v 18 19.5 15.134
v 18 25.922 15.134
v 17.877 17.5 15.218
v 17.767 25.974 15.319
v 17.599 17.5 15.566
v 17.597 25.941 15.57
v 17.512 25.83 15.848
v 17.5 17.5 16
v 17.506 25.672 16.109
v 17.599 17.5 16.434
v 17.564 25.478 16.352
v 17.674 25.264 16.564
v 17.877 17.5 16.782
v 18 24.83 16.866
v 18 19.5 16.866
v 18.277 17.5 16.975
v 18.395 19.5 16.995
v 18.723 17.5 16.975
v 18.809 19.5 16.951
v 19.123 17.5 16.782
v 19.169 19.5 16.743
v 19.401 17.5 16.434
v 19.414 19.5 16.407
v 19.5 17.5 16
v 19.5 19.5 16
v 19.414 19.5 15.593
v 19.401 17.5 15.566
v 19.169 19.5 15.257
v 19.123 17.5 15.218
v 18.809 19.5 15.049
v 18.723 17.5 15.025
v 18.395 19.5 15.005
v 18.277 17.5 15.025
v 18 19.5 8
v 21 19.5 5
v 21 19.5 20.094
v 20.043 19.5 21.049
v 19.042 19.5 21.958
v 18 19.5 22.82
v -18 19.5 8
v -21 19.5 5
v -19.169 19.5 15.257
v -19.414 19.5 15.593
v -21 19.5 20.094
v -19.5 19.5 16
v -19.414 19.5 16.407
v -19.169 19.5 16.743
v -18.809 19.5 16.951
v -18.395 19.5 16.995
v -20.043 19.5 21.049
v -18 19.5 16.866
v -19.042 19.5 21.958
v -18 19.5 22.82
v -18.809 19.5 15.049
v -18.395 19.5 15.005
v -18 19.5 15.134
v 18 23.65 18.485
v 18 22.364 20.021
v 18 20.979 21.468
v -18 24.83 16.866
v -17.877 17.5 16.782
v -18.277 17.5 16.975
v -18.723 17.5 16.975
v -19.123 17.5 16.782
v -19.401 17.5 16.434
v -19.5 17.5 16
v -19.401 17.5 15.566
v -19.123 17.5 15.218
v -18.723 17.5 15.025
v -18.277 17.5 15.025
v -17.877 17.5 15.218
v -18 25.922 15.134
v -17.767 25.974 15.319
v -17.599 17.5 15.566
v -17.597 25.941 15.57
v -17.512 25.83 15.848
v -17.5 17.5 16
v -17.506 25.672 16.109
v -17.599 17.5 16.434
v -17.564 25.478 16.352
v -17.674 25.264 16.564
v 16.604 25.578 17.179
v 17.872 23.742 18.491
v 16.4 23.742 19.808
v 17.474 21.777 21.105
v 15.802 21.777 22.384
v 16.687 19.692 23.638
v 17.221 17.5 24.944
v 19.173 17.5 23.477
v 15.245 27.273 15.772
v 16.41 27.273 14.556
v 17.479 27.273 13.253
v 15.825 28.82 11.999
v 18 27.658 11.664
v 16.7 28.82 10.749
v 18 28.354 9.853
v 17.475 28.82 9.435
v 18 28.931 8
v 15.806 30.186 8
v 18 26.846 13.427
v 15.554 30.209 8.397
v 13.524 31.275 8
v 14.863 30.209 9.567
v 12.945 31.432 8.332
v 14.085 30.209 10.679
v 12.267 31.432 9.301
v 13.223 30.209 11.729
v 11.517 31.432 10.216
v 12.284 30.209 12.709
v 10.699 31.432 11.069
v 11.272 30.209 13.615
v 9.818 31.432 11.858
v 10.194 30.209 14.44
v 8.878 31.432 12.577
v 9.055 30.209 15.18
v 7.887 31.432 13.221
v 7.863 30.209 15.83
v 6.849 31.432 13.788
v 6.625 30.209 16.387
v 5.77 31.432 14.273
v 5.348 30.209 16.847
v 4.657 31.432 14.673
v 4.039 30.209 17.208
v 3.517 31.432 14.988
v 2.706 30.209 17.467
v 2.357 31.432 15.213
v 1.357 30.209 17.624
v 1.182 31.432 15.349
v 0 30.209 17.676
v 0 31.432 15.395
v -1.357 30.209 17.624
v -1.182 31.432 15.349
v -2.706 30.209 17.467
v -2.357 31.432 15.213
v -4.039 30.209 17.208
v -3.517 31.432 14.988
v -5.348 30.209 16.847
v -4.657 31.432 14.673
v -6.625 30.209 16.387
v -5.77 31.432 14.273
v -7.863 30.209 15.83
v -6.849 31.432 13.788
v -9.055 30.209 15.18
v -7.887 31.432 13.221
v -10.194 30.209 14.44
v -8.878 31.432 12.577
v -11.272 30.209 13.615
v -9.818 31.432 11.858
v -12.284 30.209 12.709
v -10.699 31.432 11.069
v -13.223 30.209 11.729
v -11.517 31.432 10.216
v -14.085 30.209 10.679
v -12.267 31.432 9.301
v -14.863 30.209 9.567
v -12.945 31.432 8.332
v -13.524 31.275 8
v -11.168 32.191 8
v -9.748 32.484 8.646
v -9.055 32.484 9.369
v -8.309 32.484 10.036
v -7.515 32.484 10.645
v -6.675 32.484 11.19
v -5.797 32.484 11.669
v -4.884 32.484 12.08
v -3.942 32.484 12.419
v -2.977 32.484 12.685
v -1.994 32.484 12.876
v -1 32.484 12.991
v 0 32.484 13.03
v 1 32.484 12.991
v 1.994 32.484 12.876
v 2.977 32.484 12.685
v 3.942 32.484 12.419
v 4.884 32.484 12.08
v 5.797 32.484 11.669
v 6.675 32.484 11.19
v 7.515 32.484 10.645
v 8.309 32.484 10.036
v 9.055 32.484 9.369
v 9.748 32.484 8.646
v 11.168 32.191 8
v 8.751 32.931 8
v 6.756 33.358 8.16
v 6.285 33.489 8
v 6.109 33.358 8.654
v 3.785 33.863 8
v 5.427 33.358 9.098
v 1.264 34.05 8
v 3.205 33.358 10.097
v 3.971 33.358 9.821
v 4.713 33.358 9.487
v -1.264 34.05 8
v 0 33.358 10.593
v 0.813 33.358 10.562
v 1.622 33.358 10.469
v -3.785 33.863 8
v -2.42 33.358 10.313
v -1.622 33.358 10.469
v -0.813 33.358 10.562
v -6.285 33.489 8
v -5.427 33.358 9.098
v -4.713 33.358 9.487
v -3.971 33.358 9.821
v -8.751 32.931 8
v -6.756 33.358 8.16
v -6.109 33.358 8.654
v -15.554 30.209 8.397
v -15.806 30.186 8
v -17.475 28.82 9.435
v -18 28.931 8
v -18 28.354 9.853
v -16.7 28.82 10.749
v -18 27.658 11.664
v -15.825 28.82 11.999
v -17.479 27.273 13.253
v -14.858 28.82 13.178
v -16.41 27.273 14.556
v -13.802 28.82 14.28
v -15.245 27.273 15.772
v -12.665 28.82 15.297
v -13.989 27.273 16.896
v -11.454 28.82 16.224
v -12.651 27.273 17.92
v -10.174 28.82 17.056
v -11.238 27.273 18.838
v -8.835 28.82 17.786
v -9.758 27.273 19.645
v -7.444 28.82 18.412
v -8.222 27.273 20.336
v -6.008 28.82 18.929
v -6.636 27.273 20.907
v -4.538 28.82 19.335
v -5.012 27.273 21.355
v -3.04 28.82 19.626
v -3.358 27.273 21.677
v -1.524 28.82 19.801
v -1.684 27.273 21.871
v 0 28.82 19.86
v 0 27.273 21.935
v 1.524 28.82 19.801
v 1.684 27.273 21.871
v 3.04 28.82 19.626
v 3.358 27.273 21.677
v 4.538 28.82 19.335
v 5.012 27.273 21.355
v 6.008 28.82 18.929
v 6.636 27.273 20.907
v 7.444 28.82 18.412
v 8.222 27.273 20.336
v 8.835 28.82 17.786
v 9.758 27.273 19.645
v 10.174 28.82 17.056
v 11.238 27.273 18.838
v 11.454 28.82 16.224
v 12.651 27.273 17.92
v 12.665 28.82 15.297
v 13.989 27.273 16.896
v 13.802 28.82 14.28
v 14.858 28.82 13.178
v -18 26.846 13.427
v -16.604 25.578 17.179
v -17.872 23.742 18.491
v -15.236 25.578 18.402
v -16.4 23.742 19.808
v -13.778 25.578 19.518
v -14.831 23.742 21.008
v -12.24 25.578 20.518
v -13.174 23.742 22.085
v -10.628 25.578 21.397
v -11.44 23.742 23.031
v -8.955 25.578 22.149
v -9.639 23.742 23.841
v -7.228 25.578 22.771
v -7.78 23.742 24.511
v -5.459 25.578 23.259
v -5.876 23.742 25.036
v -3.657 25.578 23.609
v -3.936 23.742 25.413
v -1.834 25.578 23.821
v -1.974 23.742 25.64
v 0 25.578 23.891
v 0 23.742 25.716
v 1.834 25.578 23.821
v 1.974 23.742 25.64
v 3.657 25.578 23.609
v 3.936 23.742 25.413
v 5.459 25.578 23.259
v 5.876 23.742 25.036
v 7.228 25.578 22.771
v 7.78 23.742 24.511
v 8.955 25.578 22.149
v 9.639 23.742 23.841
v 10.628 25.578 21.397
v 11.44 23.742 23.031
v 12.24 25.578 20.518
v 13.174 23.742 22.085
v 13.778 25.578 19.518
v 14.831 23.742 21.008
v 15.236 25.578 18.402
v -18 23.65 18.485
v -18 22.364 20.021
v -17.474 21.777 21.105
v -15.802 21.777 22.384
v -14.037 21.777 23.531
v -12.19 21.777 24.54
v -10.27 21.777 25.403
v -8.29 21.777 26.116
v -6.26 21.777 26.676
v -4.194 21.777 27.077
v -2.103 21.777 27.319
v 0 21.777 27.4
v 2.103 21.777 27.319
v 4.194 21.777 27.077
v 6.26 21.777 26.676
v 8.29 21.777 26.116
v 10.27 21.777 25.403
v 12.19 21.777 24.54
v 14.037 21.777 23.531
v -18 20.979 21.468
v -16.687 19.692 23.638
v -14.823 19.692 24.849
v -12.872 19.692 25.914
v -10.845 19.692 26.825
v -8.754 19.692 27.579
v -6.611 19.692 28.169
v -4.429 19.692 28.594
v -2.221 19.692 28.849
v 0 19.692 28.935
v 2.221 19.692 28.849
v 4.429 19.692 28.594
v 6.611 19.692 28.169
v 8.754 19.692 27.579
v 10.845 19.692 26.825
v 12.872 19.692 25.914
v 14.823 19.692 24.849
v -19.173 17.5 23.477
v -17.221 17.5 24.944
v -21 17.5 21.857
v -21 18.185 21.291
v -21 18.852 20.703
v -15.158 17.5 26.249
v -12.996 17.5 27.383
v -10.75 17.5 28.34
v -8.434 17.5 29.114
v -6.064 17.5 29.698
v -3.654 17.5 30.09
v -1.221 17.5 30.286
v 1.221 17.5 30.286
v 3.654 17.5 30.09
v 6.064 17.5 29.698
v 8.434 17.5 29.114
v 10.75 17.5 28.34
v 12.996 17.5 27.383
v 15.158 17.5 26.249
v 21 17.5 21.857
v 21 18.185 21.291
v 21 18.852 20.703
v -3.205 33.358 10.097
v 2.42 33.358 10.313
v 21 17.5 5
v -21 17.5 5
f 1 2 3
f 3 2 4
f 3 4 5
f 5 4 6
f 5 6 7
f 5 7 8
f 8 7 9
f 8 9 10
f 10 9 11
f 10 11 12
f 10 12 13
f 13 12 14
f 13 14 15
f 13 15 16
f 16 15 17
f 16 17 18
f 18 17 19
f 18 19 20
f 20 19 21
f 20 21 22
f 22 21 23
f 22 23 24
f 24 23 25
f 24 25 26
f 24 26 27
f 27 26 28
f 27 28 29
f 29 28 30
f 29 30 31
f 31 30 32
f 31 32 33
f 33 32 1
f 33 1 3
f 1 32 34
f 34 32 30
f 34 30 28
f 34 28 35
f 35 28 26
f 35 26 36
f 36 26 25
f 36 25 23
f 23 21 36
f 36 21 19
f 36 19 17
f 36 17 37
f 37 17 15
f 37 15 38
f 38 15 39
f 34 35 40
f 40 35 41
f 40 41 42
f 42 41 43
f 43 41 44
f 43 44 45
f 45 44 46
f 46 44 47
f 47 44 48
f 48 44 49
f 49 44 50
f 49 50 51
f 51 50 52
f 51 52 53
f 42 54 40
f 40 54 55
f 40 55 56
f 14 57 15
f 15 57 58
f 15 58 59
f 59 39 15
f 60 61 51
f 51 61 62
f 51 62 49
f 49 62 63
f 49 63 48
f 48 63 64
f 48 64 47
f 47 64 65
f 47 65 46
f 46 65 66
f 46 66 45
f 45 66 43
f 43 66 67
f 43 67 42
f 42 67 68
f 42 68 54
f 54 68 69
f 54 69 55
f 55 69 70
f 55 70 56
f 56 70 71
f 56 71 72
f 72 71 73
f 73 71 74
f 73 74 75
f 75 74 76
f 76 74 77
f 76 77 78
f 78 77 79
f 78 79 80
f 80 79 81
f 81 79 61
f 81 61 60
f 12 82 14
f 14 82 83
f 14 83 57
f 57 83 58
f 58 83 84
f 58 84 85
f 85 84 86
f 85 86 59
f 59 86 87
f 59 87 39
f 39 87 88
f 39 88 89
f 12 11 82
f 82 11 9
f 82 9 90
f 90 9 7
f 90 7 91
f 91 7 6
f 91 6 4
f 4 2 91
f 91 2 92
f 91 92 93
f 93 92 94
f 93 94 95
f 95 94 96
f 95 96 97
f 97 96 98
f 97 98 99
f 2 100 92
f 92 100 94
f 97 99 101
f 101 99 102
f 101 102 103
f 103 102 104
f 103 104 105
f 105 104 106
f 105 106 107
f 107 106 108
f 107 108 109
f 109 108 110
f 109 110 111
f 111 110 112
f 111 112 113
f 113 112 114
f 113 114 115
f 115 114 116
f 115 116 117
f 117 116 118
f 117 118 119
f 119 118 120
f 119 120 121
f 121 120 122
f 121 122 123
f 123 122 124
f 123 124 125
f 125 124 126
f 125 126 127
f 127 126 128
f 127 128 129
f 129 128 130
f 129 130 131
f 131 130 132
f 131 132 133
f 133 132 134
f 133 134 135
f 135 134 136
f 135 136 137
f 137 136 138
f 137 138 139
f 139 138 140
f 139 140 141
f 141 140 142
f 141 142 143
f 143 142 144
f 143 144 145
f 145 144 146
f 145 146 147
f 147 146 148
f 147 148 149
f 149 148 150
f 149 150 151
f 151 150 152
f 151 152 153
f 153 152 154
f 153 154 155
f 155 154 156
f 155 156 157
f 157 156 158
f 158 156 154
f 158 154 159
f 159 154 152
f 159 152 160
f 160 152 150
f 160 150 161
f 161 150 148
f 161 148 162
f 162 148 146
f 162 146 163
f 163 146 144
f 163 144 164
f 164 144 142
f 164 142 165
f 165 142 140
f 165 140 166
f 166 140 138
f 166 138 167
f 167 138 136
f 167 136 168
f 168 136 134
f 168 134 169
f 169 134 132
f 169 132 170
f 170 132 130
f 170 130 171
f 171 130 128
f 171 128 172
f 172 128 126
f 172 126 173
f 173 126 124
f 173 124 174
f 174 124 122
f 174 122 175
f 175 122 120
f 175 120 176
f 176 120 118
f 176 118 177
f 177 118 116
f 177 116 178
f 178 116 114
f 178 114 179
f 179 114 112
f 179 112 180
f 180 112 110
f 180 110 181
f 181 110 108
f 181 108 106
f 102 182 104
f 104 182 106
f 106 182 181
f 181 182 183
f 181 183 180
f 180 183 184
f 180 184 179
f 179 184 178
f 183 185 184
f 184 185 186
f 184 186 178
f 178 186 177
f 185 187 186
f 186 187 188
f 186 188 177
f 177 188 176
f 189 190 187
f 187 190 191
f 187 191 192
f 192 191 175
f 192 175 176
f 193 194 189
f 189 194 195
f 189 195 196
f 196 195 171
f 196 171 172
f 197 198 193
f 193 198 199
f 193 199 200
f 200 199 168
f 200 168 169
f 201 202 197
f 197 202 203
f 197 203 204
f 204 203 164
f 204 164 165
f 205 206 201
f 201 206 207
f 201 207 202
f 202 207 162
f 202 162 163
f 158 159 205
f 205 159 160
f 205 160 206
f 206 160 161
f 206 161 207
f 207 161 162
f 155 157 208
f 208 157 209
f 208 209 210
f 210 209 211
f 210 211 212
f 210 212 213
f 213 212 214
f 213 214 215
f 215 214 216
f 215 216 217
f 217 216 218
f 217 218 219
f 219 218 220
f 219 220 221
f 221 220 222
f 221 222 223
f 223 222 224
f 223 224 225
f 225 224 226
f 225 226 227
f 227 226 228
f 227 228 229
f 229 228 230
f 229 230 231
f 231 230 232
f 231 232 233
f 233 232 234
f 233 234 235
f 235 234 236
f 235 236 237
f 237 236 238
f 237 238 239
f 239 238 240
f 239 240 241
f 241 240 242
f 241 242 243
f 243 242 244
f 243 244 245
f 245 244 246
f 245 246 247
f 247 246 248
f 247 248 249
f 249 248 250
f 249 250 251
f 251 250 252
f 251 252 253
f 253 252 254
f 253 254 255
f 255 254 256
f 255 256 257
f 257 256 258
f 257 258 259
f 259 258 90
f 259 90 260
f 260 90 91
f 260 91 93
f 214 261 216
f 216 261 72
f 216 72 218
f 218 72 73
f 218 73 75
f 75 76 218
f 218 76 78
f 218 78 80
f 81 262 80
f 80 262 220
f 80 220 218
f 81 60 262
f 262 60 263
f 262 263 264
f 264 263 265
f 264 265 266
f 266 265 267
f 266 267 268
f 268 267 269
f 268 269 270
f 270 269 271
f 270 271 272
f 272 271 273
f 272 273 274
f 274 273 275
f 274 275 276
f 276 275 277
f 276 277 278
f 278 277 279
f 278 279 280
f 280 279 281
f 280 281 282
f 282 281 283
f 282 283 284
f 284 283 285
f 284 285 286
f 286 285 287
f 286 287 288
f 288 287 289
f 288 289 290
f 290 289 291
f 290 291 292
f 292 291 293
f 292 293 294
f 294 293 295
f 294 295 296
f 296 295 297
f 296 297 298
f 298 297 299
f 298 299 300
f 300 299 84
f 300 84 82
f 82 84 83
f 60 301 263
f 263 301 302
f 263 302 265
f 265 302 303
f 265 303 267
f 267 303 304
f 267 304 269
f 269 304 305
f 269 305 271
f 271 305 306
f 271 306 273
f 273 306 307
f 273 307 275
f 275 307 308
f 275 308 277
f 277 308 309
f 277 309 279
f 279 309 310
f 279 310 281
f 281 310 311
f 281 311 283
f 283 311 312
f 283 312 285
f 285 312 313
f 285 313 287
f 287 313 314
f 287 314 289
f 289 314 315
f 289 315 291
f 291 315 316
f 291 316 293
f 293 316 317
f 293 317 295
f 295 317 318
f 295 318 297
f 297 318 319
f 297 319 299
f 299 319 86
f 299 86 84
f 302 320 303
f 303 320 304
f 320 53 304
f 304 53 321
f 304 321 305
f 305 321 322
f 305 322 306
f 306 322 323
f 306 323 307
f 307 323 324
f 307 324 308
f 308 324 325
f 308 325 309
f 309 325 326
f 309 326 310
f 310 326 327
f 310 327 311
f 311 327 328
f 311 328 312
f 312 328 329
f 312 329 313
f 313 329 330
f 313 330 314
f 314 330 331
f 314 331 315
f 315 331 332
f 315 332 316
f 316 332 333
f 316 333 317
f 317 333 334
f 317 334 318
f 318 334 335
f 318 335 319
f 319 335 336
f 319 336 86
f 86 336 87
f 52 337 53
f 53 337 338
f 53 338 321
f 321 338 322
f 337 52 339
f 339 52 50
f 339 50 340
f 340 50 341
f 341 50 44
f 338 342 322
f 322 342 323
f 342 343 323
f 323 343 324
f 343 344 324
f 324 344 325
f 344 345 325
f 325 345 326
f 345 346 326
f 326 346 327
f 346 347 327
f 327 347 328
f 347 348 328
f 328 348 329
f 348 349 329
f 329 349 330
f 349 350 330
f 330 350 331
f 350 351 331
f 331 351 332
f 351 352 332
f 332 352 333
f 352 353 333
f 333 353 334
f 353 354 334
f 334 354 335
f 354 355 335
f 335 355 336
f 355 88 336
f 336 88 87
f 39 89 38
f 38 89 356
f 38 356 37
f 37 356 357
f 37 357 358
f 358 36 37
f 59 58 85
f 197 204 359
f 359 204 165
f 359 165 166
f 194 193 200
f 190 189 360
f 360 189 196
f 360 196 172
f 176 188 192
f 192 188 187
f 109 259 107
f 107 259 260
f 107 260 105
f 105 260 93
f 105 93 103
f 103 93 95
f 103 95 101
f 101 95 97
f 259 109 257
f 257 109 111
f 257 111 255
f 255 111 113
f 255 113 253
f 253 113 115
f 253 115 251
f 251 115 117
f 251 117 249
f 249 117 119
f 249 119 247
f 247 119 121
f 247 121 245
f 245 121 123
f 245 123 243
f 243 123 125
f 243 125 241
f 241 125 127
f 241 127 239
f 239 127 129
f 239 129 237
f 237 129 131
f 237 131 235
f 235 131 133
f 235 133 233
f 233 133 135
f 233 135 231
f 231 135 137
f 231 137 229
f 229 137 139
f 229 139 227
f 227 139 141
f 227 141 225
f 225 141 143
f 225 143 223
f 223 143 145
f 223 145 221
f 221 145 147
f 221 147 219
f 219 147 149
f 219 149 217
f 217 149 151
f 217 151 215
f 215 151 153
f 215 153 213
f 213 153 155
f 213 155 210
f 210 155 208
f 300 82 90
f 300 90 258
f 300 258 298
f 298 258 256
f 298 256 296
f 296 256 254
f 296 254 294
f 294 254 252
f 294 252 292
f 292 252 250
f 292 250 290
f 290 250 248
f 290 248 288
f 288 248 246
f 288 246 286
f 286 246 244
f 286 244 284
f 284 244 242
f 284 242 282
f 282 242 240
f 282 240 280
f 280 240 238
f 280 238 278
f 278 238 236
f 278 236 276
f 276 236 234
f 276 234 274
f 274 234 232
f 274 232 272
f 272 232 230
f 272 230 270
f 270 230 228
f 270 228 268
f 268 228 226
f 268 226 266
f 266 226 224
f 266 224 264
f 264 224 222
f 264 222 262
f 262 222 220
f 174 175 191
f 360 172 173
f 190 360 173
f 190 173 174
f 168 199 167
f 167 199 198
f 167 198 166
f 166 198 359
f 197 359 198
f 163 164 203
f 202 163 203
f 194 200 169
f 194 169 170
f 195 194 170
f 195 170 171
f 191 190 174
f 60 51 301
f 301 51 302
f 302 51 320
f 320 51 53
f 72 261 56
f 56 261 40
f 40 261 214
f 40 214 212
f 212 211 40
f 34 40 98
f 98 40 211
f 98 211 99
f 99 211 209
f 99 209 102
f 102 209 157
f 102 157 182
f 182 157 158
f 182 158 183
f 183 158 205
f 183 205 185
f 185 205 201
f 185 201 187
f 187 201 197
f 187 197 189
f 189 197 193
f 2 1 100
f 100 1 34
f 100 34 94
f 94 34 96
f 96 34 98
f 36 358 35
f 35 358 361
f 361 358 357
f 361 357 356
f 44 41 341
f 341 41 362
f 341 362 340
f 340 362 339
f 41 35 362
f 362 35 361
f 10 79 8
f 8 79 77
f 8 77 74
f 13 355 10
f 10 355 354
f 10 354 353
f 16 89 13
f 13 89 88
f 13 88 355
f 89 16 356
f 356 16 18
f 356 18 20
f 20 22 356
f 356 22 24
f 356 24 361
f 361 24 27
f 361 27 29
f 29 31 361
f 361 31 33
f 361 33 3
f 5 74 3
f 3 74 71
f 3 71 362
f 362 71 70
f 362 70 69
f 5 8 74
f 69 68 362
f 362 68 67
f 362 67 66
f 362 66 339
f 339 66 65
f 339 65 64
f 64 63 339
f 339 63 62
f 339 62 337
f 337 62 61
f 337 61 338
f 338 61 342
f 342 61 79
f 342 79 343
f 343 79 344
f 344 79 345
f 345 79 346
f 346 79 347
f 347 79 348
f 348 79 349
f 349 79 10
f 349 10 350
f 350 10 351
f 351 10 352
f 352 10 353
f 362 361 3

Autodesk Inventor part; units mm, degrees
ref_plane "YZ Plane" through (0, 0, 0) normal (1, 0, 0) x (0, 1, 0)
ref_plane "XZ Plane" through (0, 0, 0) normal (0, 1, 0) x (-1, 0, 0)
ref_plane "XY Plane" through (0, 0, 0) normal (0, 0, 1) x (1, 0, 0)
sketch "スケッチ1" plane through (0, 0, 0) normal (0, 1, 0) x (-1, 0, 0)
  circle A0 centre (0, 0) radius 35
  line L0 (0, 0) -> (0, -35)
  line L1 (0, 0) -> (0, 35)
  dimension "d0" = 70
revolve "回転1" add sketch "スケッチ1" angle 180 about axis through (0, 0, 0) along (0, 0, 1) picked at (-2.5961, -23.0408) contours L1 L0 A0
sketch "スケッチ5" plane through (0, 0, 0) normal (0, -1, 0) x (1, 0, 0)
  line L0 (-20, -22) -> (20, -22)
  line L1 (20, -22) -> (20, -13)
  line L2 (20, -13) -> (-20, -13)
  line L3 (-20, -13) -> (-20, -22)
  line L4 (-20, -15) -> (-20, -13)
  line L5 (0, 25) -> (-17, 25)
  line L6 (-17, 25) -> (-17, 23)
  line L7 (-17, 23) -> (0, 23)
  line L8 (0, 23) -> (0, 25)
  line L9 (0, 20) -> (-20, 20)
  line L10 (-20, 20) -> (-20, 19)
  line L11 (-20, 19) -> (0, 19)
  line L12 (0, 19) -> (0, 20)
  line L13 (0, 13) -> (-19, 13)
  line L14 (-19, 13) -> (-19, 11)
  line L15 (-19, 11) -> (0, 11)
  line L16 (0, 11) -> (0, 13)
  line L17 (0, 5) -> (-23, 5)
  line L18 (-23, 5) -> (-23, 3)
  line L19 (-23, 3) -> (0, 3)
  line L20 (0, 3) -> (0, 5)
  circle A0 centre (0, 0) radius 35 projected
  circle A1 centre (0, 0) radius 35 projected
  line L21 (0, 35) -> (0, -35)
  line L22 (35, 0) -> (-35, 0)
  line L23 (-32, 2) -> (-23, 2)
  line L24 (-23, 2) -> (-23, -8)
  line L25 (-23, -8) -> (-32, -8)
  line L26 (-32, -8) -> (-32, 2)
  line L27 (-23, -8.0262) -> (-23, 2)
  line L28 (-27, 22.2711) -> (-27, -22.2711)
  line L29 (-15.5, 25) -> (0, 25)
  line L30 (0, 25) -> (0, 35)
  line L31 (0, 35) -> (-15.5, 35)
  line L32 (-15.5, 35) -> (-15.5, 25)
  line L33 (-15.5, 23) -> (0, 23)
  line L34 (0, 23) -> (0, 20)
  line L35 (0, 20) -> (-15.5, 20)
  line L36 (-15.5, 20) -> (-15.5, 23)
  line L37 (-16, 13) -> (0, 13)
  line L38 (0, 13) -> (0, 19)
  line L39 (0, 19) -> (-16, 19)
  line L40 (-16, 19) -> (-16, 13)
  line L41 (-16, 11) -> (0, 11)
  line L42 (0, 11) -> (0, 5)
  line L43 (0, 5) -> (-16, 5)
  line L44 (-16, 5) -> (-16, 11)
  line L45 (-23, -3) -> (-39.6865, -3)
  line L46 (-23, -3) -> (-7.8337, -3)
  line L47 (-8, 3) -> (-23, 3)
  line L48 (-23, 3) -> (-23, -9)
  line L49 (-23, -9) -> (-8, -9)
  line L50 (-8, -9) -> (-8, 3)
  line L51 (-8, 3) -> (-23, -9) construction
  line L52 (-23, 3) -> (-8, -9) construction
  line L53 (-23, 4) -> (-33, 4)
  line L54 (-33, 4) -> (-33, -10)
  line L55 (-33, -10) -> (-23, -10)
  line L56 (-23, -10) -> (-23, 4)
  line L57 (-23, 4) -> (-33, -10) construction
  line L58 (-33, 4) -> (-23, -10) construction
  line L59 (-8, 3) -> (-1, 3)
  line L60 (-1, 3) -> (-1, -9)
  line L61 (-1, -9) -> (-8, -9)
  line L62 (-8, -9) -> (-8, 3)
  line L63 (-8, 3) -> (-1, -9) construction
  line L64 (-1, 3) -> (-8, -9) construction
  line L65 (-23, 2) -> (-27, 2)
  line L66 (-23, -8) -> (-27, -8)
  line L67 (-23, 4) -> (-27, 4)
  line L68 (-23, -10) -> (-27, -10)
  line L69 (23.4307, -26) -> (-23.4307, -26)
  line L70 (-8, 3) -> (-6.8, 3)
  line L71 (-6.8, 3) -> (-6.8, -9)
  line L72 (-6.8, -9) -> (-8, -9)
  line L73 (-8, -9) -> (-8, 3)
  line L74 (-3, 5) -> (0, 5)
  line L75 (0, 20) -> (-4, 20)
  line L76 (-4, 19) -> (0, 19)
  line L77 (0, 19) -> (0, 20)
  line L78 (-6, 5) -> (-1, 5)
  line L79 (-1, 3) -> (-6, 3)
  point P0 (0, -22)
  point P1 (0, -13)
  point P2 (0, 24)
  point P3 (0, 19.5)
  point P4 (0, 12)
  point P5 (0, 4)
  point P6 (-20, -17.5)
  point P7 (-27, -0.5262)
  point P8 (-27, -8)
  point P9 (-15.5, 21.5)
  point P10 (-15.5, 31.3807)
  point P11 (0, 25)
  point P12 (0, 23)
  point P13 (0, 11)
  point P14 (0, 13)
  point P15 (-27, 0)
  point P16 (-32, 0)
  point P17 (-23, 0)
  point P18 (-15.5, -3)
  point P19 (-28, -3)
  point P20 (-4.5, -3)
  point P21 (-8, -9)
  point P22 (-8, 3)
  point P23 (-27, 0.5)
  point P24 (-28, 0.4738)
  point P25 (-28, -11.5262)
  point P26 (-27, -11.5)
  point P27 (-23, 2)
  point P28 (-23, 2)
  point P29 (-8, 0)
  point P30 (-1, 0)
  point P31 (0, 19)
  point P32 (0, 20)
  point P33 (-27, -10)
  point P34 (-27, 4)
  dimension "d12" = 40
  dimension "d13" = 9
  dimension "d23" = 17
  dimension "d24" = 2
  dimension "d27" = 20
  dimension "d28" = 1
  dimension "d30" = 19
  dimension "d31" = 2
  dimension "d33" = 2
  dimension "d88" = 0
  dimension "d89" = 0
  dimension "d90" = 13
  dimension "d92" = 20
  dimension "d93" = 10
  dimension "d97" = 9
  dimension "d98" = 10
  dimension "d113" = 27
  dimension "d122" = 15.5
  dimension "d123" = 35
  dimension "d124" = 3
  dimension "d125" = 15.5
  dimension "d126" = 6
  dimension "d127" = 6
  dimension "d128" = 16
  dimension "d129" = 16
  dimension "d147" = 12
  dimension "d149" = 8
  dimension "d151" = 15
  dimension "d161" = 14
  dimension "d162" = 10
  dimension "d164" = 12
  dimension "d165" = 7
  dimension "d170" = 26
  dimension "d175" = 1.2
  dimension "d207" = 0
extrude "GNSボード" cut sketch "スケッチ5" against normal blind 16 contours L8 L7 L6 L5
extrude "GNSボード止めるよう" cut sketch "スケッチ5" against normal blind 15 contours L21 L5 L32 A0 | L21 L9 L36 L7
extrude "アルミ板１" cut sketch "スケッチ5" against normal blind 17.5 contours L11 L10 L9 L12
extrude "メイン基板" cut sketch "スケッチ5" against normal blind 17.5 contours L15 L14 L13 L16
extrude "メイン止めるよう" cut sketch "スケッチ5" against normal blind 16.5 contours L17 L44 L15 L21 | L13 L40 L11 L21
extrude "アルミ板２" cut sketch "スケッチ5" against normal blind 19.5 contours L19 L18 L17 L20
extrude "電池ボックス入れ" cut sketch "スケッチ5" against normal blind 15 contours L3 L2 L21 L0 | L21 L2 L1 L0
extrude "side ut" cut sketch "スケッチ5" against normal blind 100 contours A0 L45 L54 L55 L28 | A0 L22 L54 L45 | L55 L54 L45 L26 L25 L28 | A0 L28 L53 L54 L22 | L54 L22 L26 L45 | L25 L26 L45 L28 | L54 L53 L28 L23 L26 L22 | L26 L22 L28 L45 | L22 L26 L23 L28
extrude "motor case" add sketch "スケッチ5" against normal blind 7 contours L55 L54 L45 L26 L25 L28 | L28 L25 L27 L48 L56 L55 | L50 L46 L24 L22 | L22 L24 L48 L19 L50 | L54 L22 L26 L45 | L28 L45 L24 L25 | L25 L26 L45 L28 | L24 L45 L28 L22 | L22 L28 L23 L24 | L50 L49 L48 L27 L24 L46 | L54 L53 L28 L23 L26 L22 | L26 L22 L28 L45 | L53 L18 L48 L23 L28 | L22 L26 L23 L28
extrude "bottom cut" cut sketch "スケッチ5" against normal blind 90 contours L69 A0 L21 | L21 A0 L69
extrude "motor" cut sketch "スケッチ5" against normal blind 6 contours L60 L61 L71 L22 | L22 L71 L19 L60 | L71 L61 L50 L22 | L22 L50 L19 L71 | L50 L46 L24 L22 | L22 L24 L48 L19 L50 | L28 L45 L24 L25 | L25 L26 L45 L28 | L24 L45 L28 L22 | L22 L28 L23 L24 | L50 L49 L48 L27 L24 L46 | L26 L22 L28 L45 | L22 L26 L23 L28
extrude "motor block" add sketch "スケッチ5" against normal blind 10 contours L71 L61 L50 L22 | L22 L50 L19 L71
sketch "スケッチ27" plane through (-33, 0, -10) normal (-1, 0, 0) x (0, 0, 1)
  line L0 (14, 0) -> (0, 0) projected
  circle A0 centre (7, 0) radius 3
  point P0 (10, 0)
  dimension "d198" = 6
extrude "押し出し36" cut sketch "スケッチ27" against normal blind 27
mirror "ミラー13" about plane through (0, 0, 0) normal (1, 0, 0) of "メイン止めるよう", "メイン基板", "アルミ板１", "GNSボード止めるよう", "GNSボード", "アルミ板２", "motor", "motor case", "押し出し36", "電池ボックス入れ", "side ut"
ref_plane "作業平面5" through (-17, 17.5, 23) normal (0, -1, 0) x (1, 0, 0)
sketch "スケッチ29" plane through (-17, 17.5, 23) normal (0, -1, 0) x (1, 0, 0)
  line L0 (32.5, 2) -> (1.5, 2) projected
  line L1 (1.5, 0) -> (32.5, 0) projected
  line L2 (32.5, -3) -> (1.5, -3) projected
  line L3 (1, -4) -> (33, -4) projected
  line L4 (33, -10) -> (1, -10) projected
  line L5 (33, -10) -> (33, -4) projected
  line L6 (1, -4) -> (33, -4) projected
  line L7 (1, -10) -> (1, -4) projected
  line L8 (1, -12) -> (33, -12) projected
  line L9 (33, -18) -> (1, -18) projected
  line L10 (33, -18) -> (33, -12) projected
  line L11 (1, -12) -> (33, -12) projected
  line L12 (1, -18) -> (1, -12) projected
  line L13 (18, -20) -> (40, -20) projected
  line L14 (-6, -20) -> (17, -20) projected
  line L15 (17, -18) -> (-6, -18) projected
  line L16 (-16, -23) -> (-15, -23) projected
  line L17 (-15, -23) -> (-15, -21) projected
  line L18 (-15, -21) -> (-6, -21) projected
  line L19 (-6, -21) -> (-6, -18) projected
  line L20 (-6, -18) -> (1, -18) projected
  line L21 (1, -18) -> (1, -12) projected
  line L22 (1, -12) -> (-2, -12) projected
  line L23 (-2, -12) -> (-2, -10) projected
  line L24 (-2, -10) -> (1, -10) projected
  line L25 (1, -10) -> (1, -4) projected
  line L26 (1, -4) -> (-3, -4) projected
  line L27 (-3, -4) -> (-3, -3) projected
  line L28 (-3, -3) -> (1.5, -3) projected
  line L29 (1.5, -3) -> (1.5, 0) projected
  line L30 (1.5, 0) -> (0, 0) projected
  line L31 (0, 0) -> (0, 2) projected
  line L32 (0, 2) -> (1.5, 2) projected
  line L33 (1.5, 2) -> (1.5, 8.3807) projected
  arc A0 (1.5, 8.3807) -> (-10, -0.7289) centre (17, -23) ccw projected
  line L34 (-10, -0.7289) -> (-10, -19) projected
  line L35 (-10, -19) -> (-16, -19) projected
  line L36 (-16, -19) -> (-16, -23) projected
  line L37 (49, -23) -> (50, -23) projected
  line L38 (50, -19) -> (50, -23) projected
  line L39 (44, -19) -> (50, -19) projected
  line L40 (44, -19) -> (44, -0.7289) projected
  arc A1 (44, -0.7289) -> (32.5, 8.3807) centre (17, -23) ccw projected
  line L41 (32.5, 8.3807) -> (32.5, 2) projected
  line L42 (32.5, 2) -> (34, 2) projected
  line L43 (34, 2) -> (34, 0) projected
  line L44 (34, 0) -> (32.5, 0) projected
  line L45 (32.5, 0) -> (32.5, -3) projected
  line L46 (32.5, -3) -> (37, -3) projected
  line L47 (37, -3) -> (37, -4) projected
  line L48 (37, -4) -> (33, -4) projected
  line L49 (33, -4) -> (33, -10) projected
  line L50 (33, -10) -> (36, -10) projected
  line L51 (36, -10) -> (36, -12) projected
  line L52 (36, -12) -> (33, -12) projected
  line L53 (33, -12) -> (33, -18) projected
  line L54 (33, -18) -> (40, -18) projected
  line L55 (40, -18) -> (40, -21) projected
  line L56 (40, -21) -> (49, -21) projected
  line L57 (49, -21) -> (49, -23) projected
  line L58 (40, -18) -> (-6, -18) projected
  line L59 (-4, -18) -> (38, -18)
  line L60 (38, -18) -> (38, 8.3807)
  line L61 (38, 8.3807) -> (-4, 8.3807)
  line L62 (-4, 8.3807) -> (-4, -18)
  circle A2 centre (17, -23) radius 35
  point P0 (-10, -0.7289)
  point P1 (44, -0.7289)
  point P2 (-4, 5)
  point P3 (38, 5)
  point P4 (37, -3)
  point P5 (38, -18)
  point P6 (32.5, 8.3807)
  point P7 (32.5, 8.3807)
  point P8 (1.5, 8.3807)
  point P9 (1.5, 8.3807)
  dimension "d209" = 2
  dimension "d210" = 2
  dimension "d211" = 26.3807
  dimension "d212" = 70
extrude "押し出し38" cut sketch "スケッチ29" against normal blind 30 contours A1 L40 L39 L38 L37 L57 L56 L55 L54 L60 | L62 L15 L19 L18 L17 L16 L36 L35 L34 A0 | A2 L34 L35 L36 L16 L17 L18 L19 L15 L9 L54 L55 L56 L57 L37 L38 L39 L40
sketch "スケッチ30" plane through (-17, 17.5, 23) normal (0, -1, 0) x (1, 0, 0)
  circle A0 centre (17, -23) radius 50
  line L0 (17, 2) -> (0, 2) projected
  line L1 (0, 0) -> (17, 0) projected
  line L2 (-16, -23) -> (-15, -23) projected
  line L3 (-15, -23) -> (-15, -21) projected
  line L4 (-15, -21) -> (-6, -21) projected
  line L5 (-6, -21) -> (-6, -18) projected
  line L6 (-6, -18) -> (1, -18) projected
  line L7 (1, -18) -> (1, -12) projected
  line L8 (1, -12) -> (-2, -12) projected
  line L9 (-2, -12) -> (-2, -10) projected
  line L10 (-2, -10) -> (1, -10) projected
  line L11 (1, -10) -> (1, -4) projected
  line L12 (1, -4) -> (-3, -4) projected
  line L13 (-3, -4) -> (-3, -3) projected
  line L14 (-3, -3) -> (1.5, -3) projected
  line L15 (1.5, -3) -> (1.5, 0) projected
  line L16 (1.5, 0) -> (0, 0) projected
  line L17 (0, 0) -> (0, 2) projected
  line L18 (0, 2) -> (1.5, 2) projected
  line L19 (1.5, 2) -> (1.5, 8.3807) projected
  arc A1 (1.5, 8.3807) -> (-10, -0.7289) centre (17, -23) ccw projected
  line L20 (-10, -0.7289) -> (-10, -19) projected
  line L21 (-10, -19) -> (-16, -19) projected
  line L22 (-16, -19) -> (-16, -23) projected
  line L23 (-4, -18) -> (-4, -1.1425) projected
  dimension "d215" = 100
  dimension "d218" = 5
extrude "押し出し39" cut sketch "スケッチ30" along normal blind 100 contours A0 | L0 L17 L1 L15 L14 L13 L12 L11 L10 L9 L8 L7 L6 L5 L4 L3 L2 L22 L21 L20 A1 L19
sketch "スケッチ33" plane through (21, 17.5, 21.8575) normal (1, 0, 0) x (0, 0, -1)
  line L0 (16.8575, 0) -> (0, 0) projected
  line L1 (16.8575, 0) -> (16.8575, 10.05) projected
  line L2 (0, 0) -> (16.8575, 0)
  line L3 (16.8575, 0) -> (16.8575, 2)
  line L4 (0, 2) -> (0, 0)
  line L5 (16.8575, 17.141) -> (16.8575, 10.05) projected
  line L6 (0, 0) -> (-8.4534, 0) projected
  arc A0 (16.8575, 17.141) -> (-8.4534, 0) centre (21.8575, -17.5) ccw
  line L7 (-7.9835, 0) -> (0, 0)
  line L8 (16.8575, 2) -> (16.8575, 17.141)
  line L9 (16.8575, 0) -> (-8.4534, 0)
  line L10 (-8.4534, 0) -> (-8.4534, 2)
  line L11 (-8.4534, 2) -> (16.8575, 2)
  line L12 (16.8575, 2) -> (16.8575, 0)
  point P0 (21.8575, -17.5)
  point P1 (-7.2071, 2)
  point P2 (16.8575, 2)
  dimension "d236" = 2
extrude "押し出し42" cut sketch "スケッチ33" against normal blind 3 contours L11 A0 L5 L1
sketch "スケッチ34" plane through (21, 17.5, 5) normal (0, 0, -1) x (-1, 0, 0)
  line L0 (3, 12.0973) -> (3, 2) projected
  line L1 (3, 2) -> (42, 2)
  line L2 (42, 0) -> (42, 10.05) projected
  arc A0 (42, 10.05) -> (3, 12.0973) centre (21, -17.5) ccw projected
  arc A1 (42, 10.05) -> (3, 12.0973) centre (21, -17.5) ccw
  line L3 (3, 12.0973) -> (3, 2)
  line L4 (42, 10.05) -> (42, 2)
  point P0 (3, 0)
extrude "押し出し43" cut sketch "スケッチ34" against normal blind 3
sketch "スケッチ35" plane through (-21, 17.5, 5) normal (-1, 0, 0) x (0, 0, 1)
  line L0 (0, 0) -> (16.8575, 0) projected
  line L1 (0, 0) -> (16.8575, 0)
  line L2 (16.8575, 0) -> (16.8575, 2)
  line L3 (0, 2) -> (0, 0)
  line L4 (25.3109, 0) -> (16.8575, 0) projected
  line L5 (3, 11.431) -> (3, 16.5735) projected
  arc A0 (25.3109, 0) -> (3, 16.5735) centre (-5, -17.5) ccw
  arc A1 (25.3109, 0) -> (3, 16.5735) centre (-5, -17.5) ccw projected
  line L6 (25.3109, 0) -> (16.8575, 0)
  line L7 (3, 16.5735) -> (3, 2)
  line L8 (0, 0) -> (40.4212, 0)
  line L9 (40.4212, 0) -> (40.4212, 2)
  line L10 (40.4212, 2) -> (0, 2)
  line L11 (0, 2) -> (0, 0)
  point P0 (19.3875, 0)
  point P1 (3, 12.0296)
  point P2 (24.0646, 2)
extrude "押し出し44" cut sketch "スケッチ35" against normal blind 3 contours L10 L7 L5 A0
sketch "スケッチ36" plane through (0, 17.5, 0) normal (0, -1, 0) x (1, 0, 0)
  line L0 (-16, 19) -> (-16, 13) projected
  line L1 (-20, 19) -> (0, 19) projected
  line L2 (0, 13) -> (-19, 13) projected
  line L3 (-21, 8) -> (-21, 5) projected
  line L4 (-16, 19) -> (-21, 19)
  line L5 (-21, 19) -> (-21, 13)
  line L6 (-21, 13) -> (-16, 13)
  line L7 (-16, 13) -> (-16, 19)
  line L8 (-16, 19) -> (-21, 13)
  line L9 (-16, 13) -> (-21, 19)
  circle A0 centre (-18.5, 16) radius 1
  line L10 (-21, 8) -> (18, 8) projected
  line L11 (0, 35) -> (0, -35) projected
  point P0 (0, 0)
  point P1 (-21, 20.0935)
  point P2 (-18, 8)
  dimension "d232" = 2
  dimension "d233" = 8
extrude "押し出し45" cut sketch "スケッチ36" against normal blind 100 contours A0 L9 L8 | L8 L9 A0 | A0 L8 L9 | L8 A0 L9
mirror "ミラー14" about plane through (0, 0, 0) normal (1, 0, 0) of "押し出し45"
properties part number "body back for main 2" material "ABS プラスチック"
